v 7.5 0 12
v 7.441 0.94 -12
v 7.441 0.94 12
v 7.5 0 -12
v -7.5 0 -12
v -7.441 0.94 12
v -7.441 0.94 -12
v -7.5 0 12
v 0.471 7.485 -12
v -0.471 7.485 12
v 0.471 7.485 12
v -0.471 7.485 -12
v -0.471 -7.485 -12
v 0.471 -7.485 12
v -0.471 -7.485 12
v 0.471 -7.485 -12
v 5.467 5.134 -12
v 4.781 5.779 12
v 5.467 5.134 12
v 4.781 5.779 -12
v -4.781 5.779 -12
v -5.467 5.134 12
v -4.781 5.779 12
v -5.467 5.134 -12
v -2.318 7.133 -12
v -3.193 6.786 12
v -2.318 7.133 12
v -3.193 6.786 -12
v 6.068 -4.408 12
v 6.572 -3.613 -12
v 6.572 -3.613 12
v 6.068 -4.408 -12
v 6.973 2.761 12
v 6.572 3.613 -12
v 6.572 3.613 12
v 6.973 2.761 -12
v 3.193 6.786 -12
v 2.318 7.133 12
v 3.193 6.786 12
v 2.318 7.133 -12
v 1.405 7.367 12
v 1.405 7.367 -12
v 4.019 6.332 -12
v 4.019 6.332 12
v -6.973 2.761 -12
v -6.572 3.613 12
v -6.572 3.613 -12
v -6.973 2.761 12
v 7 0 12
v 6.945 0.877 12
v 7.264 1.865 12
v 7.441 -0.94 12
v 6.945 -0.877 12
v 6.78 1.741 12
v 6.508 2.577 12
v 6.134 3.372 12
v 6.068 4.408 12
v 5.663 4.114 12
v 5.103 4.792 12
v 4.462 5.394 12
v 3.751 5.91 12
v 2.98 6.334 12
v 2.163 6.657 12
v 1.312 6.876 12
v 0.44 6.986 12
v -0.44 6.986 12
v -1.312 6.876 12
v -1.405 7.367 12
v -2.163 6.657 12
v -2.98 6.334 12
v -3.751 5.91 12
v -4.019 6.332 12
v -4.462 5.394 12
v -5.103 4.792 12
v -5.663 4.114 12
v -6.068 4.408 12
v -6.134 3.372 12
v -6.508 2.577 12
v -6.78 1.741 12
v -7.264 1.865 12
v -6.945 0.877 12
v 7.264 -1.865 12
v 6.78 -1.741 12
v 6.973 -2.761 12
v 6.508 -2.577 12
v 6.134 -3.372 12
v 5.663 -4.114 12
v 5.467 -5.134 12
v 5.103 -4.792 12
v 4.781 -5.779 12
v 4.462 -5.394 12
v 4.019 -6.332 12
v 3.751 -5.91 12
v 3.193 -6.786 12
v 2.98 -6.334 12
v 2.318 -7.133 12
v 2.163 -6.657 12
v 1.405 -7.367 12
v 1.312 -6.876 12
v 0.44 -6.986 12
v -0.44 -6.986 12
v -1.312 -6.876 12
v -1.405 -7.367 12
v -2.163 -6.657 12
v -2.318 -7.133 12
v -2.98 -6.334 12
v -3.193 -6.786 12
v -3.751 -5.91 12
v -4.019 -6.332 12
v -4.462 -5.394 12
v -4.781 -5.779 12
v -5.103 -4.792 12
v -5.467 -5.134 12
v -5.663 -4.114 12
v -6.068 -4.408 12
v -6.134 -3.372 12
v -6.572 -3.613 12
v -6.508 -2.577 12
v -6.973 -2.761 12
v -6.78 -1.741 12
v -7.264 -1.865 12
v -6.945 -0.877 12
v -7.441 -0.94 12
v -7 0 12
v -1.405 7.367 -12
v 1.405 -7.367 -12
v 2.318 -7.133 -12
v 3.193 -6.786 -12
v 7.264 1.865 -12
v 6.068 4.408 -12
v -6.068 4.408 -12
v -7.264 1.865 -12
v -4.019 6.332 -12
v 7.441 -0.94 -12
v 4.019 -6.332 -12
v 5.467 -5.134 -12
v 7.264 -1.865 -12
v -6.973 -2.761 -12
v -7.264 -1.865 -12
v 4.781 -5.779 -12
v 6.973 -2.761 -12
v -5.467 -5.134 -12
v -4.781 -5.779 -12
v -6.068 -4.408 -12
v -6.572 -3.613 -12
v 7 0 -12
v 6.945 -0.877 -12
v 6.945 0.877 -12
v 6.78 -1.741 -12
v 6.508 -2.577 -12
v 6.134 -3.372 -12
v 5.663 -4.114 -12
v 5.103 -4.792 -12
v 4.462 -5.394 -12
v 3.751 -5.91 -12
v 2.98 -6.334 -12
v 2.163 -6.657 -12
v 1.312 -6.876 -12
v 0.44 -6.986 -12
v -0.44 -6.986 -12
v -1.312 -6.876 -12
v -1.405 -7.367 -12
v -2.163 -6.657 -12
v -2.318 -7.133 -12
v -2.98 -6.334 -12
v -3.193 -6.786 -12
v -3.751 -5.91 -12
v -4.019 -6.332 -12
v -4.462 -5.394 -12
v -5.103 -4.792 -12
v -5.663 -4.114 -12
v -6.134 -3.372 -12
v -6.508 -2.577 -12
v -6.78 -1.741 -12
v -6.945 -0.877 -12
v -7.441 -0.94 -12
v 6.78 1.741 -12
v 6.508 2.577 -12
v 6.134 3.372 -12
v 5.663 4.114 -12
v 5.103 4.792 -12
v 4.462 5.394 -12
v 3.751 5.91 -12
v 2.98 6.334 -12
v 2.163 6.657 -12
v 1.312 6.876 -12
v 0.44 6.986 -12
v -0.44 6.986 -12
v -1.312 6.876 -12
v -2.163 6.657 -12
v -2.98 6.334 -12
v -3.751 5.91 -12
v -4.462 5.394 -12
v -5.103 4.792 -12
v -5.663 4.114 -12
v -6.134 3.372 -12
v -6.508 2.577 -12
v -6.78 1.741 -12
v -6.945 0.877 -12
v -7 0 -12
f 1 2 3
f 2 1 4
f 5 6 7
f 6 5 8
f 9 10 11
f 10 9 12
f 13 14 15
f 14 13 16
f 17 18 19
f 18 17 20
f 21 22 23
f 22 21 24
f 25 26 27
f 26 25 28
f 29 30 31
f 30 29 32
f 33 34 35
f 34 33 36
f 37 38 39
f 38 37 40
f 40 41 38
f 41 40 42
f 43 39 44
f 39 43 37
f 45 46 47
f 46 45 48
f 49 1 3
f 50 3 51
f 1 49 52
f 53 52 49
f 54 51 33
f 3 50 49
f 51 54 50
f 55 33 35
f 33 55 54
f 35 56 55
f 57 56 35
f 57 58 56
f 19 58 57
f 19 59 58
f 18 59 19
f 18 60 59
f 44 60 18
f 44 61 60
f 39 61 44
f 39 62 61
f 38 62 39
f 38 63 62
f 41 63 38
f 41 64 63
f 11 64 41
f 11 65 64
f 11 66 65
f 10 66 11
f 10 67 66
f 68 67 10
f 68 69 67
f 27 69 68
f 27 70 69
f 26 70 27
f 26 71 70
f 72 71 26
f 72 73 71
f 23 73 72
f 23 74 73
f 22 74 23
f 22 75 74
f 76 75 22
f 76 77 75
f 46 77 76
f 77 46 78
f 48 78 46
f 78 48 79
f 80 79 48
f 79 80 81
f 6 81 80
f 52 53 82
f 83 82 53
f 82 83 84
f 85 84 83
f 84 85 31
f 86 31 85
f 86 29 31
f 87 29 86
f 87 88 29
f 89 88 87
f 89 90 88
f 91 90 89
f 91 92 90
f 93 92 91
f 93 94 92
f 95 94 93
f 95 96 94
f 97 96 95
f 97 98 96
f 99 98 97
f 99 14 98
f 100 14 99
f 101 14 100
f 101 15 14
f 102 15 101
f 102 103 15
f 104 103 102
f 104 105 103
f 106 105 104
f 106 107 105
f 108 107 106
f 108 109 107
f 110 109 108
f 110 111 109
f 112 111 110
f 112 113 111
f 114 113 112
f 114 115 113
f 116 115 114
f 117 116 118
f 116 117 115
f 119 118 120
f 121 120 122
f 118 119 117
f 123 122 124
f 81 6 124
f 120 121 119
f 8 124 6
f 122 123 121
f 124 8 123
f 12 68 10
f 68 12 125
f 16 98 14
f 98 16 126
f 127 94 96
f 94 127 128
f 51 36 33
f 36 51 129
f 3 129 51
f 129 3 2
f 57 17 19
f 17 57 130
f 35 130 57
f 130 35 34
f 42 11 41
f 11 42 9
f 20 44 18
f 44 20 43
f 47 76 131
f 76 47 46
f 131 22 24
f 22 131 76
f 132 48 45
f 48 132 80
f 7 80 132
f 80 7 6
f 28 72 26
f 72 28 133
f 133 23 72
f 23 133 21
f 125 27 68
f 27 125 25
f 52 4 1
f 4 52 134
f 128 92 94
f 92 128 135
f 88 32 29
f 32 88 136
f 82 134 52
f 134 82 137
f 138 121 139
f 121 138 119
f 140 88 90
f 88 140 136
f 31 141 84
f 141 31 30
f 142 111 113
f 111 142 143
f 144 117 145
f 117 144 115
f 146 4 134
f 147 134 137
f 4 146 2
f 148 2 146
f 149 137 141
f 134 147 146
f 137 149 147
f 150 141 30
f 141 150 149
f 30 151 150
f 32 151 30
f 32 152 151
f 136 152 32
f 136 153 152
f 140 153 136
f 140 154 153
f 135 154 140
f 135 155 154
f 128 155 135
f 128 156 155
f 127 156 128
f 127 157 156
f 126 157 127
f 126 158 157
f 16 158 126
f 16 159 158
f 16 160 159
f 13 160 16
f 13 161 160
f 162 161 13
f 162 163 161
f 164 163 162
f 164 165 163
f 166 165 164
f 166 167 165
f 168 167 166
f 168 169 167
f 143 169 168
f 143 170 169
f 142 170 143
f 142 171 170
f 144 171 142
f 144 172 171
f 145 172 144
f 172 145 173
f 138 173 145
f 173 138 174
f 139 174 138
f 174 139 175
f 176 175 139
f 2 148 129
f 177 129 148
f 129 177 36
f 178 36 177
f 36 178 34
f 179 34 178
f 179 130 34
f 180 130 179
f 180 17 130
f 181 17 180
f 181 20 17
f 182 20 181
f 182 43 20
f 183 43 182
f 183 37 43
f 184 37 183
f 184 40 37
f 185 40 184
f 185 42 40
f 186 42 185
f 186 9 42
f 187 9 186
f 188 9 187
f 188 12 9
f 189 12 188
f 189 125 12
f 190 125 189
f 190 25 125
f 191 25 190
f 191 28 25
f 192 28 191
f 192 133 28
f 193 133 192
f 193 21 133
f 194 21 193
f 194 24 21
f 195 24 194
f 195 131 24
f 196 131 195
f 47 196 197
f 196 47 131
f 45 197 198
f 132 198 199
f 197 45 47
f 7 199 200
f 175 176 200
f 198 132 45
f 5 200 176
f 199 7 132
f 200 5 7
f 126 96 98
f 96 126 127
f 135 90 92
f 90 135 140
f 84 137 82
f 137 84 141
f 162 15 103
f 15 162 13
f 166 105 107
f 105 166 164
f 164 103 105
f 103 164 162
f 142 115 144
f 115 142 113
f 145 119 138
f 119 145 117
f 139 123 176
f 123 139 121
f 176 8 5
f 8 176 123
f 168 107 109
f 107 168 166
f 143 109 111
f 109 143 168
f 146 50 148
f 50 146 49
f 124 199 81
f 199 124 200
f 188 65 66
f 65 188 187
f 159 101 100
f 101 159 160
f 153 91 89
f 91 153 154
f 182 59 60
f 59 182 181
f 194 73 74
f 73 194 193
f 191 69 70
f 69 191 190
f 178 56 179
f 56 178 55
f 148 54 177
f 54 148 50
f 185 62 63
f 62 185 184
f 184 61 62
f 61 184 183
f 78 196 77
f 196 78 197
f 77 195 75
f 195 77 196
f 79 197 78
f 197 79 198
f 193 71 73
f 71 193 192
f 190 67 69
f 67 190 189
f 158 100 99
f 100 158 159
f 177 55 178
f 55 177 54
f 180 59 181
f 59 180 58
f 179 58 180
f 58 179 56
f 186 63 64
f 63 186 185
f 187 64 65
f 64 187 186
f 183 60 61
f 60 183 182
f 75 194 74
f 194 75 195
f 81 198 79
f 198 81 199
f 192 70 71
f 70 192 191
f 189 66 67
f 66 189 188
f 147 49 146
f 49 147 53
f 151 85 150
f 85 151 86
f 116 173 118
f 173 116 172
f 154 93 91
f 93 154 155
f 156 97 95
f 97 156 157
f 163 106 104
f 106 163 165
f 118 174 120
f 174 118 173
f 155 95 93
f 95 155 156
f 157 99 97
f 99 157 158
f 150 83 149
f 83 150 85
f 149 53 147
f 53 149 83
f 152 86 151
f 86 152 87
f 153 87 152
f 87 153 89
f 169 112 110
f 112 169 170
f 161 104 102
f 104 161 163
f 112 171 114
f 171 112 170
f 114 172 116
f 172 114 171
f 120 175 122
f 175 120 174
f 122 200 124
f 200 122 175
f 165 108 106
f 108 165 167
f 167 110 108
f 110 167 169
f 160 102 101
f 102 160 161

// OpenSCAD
$fn = 50;


difference() {
	union() {
		translate(v = [0, 0, -12.0000000000]) {
			cylinder(h = 24, r = 7.5000000000);
		}
	}
	union() {
		translate(v = [0, 0, -100.0000000000]) {
			cylinder(h = 200, r = 7);
		}
	}
}
